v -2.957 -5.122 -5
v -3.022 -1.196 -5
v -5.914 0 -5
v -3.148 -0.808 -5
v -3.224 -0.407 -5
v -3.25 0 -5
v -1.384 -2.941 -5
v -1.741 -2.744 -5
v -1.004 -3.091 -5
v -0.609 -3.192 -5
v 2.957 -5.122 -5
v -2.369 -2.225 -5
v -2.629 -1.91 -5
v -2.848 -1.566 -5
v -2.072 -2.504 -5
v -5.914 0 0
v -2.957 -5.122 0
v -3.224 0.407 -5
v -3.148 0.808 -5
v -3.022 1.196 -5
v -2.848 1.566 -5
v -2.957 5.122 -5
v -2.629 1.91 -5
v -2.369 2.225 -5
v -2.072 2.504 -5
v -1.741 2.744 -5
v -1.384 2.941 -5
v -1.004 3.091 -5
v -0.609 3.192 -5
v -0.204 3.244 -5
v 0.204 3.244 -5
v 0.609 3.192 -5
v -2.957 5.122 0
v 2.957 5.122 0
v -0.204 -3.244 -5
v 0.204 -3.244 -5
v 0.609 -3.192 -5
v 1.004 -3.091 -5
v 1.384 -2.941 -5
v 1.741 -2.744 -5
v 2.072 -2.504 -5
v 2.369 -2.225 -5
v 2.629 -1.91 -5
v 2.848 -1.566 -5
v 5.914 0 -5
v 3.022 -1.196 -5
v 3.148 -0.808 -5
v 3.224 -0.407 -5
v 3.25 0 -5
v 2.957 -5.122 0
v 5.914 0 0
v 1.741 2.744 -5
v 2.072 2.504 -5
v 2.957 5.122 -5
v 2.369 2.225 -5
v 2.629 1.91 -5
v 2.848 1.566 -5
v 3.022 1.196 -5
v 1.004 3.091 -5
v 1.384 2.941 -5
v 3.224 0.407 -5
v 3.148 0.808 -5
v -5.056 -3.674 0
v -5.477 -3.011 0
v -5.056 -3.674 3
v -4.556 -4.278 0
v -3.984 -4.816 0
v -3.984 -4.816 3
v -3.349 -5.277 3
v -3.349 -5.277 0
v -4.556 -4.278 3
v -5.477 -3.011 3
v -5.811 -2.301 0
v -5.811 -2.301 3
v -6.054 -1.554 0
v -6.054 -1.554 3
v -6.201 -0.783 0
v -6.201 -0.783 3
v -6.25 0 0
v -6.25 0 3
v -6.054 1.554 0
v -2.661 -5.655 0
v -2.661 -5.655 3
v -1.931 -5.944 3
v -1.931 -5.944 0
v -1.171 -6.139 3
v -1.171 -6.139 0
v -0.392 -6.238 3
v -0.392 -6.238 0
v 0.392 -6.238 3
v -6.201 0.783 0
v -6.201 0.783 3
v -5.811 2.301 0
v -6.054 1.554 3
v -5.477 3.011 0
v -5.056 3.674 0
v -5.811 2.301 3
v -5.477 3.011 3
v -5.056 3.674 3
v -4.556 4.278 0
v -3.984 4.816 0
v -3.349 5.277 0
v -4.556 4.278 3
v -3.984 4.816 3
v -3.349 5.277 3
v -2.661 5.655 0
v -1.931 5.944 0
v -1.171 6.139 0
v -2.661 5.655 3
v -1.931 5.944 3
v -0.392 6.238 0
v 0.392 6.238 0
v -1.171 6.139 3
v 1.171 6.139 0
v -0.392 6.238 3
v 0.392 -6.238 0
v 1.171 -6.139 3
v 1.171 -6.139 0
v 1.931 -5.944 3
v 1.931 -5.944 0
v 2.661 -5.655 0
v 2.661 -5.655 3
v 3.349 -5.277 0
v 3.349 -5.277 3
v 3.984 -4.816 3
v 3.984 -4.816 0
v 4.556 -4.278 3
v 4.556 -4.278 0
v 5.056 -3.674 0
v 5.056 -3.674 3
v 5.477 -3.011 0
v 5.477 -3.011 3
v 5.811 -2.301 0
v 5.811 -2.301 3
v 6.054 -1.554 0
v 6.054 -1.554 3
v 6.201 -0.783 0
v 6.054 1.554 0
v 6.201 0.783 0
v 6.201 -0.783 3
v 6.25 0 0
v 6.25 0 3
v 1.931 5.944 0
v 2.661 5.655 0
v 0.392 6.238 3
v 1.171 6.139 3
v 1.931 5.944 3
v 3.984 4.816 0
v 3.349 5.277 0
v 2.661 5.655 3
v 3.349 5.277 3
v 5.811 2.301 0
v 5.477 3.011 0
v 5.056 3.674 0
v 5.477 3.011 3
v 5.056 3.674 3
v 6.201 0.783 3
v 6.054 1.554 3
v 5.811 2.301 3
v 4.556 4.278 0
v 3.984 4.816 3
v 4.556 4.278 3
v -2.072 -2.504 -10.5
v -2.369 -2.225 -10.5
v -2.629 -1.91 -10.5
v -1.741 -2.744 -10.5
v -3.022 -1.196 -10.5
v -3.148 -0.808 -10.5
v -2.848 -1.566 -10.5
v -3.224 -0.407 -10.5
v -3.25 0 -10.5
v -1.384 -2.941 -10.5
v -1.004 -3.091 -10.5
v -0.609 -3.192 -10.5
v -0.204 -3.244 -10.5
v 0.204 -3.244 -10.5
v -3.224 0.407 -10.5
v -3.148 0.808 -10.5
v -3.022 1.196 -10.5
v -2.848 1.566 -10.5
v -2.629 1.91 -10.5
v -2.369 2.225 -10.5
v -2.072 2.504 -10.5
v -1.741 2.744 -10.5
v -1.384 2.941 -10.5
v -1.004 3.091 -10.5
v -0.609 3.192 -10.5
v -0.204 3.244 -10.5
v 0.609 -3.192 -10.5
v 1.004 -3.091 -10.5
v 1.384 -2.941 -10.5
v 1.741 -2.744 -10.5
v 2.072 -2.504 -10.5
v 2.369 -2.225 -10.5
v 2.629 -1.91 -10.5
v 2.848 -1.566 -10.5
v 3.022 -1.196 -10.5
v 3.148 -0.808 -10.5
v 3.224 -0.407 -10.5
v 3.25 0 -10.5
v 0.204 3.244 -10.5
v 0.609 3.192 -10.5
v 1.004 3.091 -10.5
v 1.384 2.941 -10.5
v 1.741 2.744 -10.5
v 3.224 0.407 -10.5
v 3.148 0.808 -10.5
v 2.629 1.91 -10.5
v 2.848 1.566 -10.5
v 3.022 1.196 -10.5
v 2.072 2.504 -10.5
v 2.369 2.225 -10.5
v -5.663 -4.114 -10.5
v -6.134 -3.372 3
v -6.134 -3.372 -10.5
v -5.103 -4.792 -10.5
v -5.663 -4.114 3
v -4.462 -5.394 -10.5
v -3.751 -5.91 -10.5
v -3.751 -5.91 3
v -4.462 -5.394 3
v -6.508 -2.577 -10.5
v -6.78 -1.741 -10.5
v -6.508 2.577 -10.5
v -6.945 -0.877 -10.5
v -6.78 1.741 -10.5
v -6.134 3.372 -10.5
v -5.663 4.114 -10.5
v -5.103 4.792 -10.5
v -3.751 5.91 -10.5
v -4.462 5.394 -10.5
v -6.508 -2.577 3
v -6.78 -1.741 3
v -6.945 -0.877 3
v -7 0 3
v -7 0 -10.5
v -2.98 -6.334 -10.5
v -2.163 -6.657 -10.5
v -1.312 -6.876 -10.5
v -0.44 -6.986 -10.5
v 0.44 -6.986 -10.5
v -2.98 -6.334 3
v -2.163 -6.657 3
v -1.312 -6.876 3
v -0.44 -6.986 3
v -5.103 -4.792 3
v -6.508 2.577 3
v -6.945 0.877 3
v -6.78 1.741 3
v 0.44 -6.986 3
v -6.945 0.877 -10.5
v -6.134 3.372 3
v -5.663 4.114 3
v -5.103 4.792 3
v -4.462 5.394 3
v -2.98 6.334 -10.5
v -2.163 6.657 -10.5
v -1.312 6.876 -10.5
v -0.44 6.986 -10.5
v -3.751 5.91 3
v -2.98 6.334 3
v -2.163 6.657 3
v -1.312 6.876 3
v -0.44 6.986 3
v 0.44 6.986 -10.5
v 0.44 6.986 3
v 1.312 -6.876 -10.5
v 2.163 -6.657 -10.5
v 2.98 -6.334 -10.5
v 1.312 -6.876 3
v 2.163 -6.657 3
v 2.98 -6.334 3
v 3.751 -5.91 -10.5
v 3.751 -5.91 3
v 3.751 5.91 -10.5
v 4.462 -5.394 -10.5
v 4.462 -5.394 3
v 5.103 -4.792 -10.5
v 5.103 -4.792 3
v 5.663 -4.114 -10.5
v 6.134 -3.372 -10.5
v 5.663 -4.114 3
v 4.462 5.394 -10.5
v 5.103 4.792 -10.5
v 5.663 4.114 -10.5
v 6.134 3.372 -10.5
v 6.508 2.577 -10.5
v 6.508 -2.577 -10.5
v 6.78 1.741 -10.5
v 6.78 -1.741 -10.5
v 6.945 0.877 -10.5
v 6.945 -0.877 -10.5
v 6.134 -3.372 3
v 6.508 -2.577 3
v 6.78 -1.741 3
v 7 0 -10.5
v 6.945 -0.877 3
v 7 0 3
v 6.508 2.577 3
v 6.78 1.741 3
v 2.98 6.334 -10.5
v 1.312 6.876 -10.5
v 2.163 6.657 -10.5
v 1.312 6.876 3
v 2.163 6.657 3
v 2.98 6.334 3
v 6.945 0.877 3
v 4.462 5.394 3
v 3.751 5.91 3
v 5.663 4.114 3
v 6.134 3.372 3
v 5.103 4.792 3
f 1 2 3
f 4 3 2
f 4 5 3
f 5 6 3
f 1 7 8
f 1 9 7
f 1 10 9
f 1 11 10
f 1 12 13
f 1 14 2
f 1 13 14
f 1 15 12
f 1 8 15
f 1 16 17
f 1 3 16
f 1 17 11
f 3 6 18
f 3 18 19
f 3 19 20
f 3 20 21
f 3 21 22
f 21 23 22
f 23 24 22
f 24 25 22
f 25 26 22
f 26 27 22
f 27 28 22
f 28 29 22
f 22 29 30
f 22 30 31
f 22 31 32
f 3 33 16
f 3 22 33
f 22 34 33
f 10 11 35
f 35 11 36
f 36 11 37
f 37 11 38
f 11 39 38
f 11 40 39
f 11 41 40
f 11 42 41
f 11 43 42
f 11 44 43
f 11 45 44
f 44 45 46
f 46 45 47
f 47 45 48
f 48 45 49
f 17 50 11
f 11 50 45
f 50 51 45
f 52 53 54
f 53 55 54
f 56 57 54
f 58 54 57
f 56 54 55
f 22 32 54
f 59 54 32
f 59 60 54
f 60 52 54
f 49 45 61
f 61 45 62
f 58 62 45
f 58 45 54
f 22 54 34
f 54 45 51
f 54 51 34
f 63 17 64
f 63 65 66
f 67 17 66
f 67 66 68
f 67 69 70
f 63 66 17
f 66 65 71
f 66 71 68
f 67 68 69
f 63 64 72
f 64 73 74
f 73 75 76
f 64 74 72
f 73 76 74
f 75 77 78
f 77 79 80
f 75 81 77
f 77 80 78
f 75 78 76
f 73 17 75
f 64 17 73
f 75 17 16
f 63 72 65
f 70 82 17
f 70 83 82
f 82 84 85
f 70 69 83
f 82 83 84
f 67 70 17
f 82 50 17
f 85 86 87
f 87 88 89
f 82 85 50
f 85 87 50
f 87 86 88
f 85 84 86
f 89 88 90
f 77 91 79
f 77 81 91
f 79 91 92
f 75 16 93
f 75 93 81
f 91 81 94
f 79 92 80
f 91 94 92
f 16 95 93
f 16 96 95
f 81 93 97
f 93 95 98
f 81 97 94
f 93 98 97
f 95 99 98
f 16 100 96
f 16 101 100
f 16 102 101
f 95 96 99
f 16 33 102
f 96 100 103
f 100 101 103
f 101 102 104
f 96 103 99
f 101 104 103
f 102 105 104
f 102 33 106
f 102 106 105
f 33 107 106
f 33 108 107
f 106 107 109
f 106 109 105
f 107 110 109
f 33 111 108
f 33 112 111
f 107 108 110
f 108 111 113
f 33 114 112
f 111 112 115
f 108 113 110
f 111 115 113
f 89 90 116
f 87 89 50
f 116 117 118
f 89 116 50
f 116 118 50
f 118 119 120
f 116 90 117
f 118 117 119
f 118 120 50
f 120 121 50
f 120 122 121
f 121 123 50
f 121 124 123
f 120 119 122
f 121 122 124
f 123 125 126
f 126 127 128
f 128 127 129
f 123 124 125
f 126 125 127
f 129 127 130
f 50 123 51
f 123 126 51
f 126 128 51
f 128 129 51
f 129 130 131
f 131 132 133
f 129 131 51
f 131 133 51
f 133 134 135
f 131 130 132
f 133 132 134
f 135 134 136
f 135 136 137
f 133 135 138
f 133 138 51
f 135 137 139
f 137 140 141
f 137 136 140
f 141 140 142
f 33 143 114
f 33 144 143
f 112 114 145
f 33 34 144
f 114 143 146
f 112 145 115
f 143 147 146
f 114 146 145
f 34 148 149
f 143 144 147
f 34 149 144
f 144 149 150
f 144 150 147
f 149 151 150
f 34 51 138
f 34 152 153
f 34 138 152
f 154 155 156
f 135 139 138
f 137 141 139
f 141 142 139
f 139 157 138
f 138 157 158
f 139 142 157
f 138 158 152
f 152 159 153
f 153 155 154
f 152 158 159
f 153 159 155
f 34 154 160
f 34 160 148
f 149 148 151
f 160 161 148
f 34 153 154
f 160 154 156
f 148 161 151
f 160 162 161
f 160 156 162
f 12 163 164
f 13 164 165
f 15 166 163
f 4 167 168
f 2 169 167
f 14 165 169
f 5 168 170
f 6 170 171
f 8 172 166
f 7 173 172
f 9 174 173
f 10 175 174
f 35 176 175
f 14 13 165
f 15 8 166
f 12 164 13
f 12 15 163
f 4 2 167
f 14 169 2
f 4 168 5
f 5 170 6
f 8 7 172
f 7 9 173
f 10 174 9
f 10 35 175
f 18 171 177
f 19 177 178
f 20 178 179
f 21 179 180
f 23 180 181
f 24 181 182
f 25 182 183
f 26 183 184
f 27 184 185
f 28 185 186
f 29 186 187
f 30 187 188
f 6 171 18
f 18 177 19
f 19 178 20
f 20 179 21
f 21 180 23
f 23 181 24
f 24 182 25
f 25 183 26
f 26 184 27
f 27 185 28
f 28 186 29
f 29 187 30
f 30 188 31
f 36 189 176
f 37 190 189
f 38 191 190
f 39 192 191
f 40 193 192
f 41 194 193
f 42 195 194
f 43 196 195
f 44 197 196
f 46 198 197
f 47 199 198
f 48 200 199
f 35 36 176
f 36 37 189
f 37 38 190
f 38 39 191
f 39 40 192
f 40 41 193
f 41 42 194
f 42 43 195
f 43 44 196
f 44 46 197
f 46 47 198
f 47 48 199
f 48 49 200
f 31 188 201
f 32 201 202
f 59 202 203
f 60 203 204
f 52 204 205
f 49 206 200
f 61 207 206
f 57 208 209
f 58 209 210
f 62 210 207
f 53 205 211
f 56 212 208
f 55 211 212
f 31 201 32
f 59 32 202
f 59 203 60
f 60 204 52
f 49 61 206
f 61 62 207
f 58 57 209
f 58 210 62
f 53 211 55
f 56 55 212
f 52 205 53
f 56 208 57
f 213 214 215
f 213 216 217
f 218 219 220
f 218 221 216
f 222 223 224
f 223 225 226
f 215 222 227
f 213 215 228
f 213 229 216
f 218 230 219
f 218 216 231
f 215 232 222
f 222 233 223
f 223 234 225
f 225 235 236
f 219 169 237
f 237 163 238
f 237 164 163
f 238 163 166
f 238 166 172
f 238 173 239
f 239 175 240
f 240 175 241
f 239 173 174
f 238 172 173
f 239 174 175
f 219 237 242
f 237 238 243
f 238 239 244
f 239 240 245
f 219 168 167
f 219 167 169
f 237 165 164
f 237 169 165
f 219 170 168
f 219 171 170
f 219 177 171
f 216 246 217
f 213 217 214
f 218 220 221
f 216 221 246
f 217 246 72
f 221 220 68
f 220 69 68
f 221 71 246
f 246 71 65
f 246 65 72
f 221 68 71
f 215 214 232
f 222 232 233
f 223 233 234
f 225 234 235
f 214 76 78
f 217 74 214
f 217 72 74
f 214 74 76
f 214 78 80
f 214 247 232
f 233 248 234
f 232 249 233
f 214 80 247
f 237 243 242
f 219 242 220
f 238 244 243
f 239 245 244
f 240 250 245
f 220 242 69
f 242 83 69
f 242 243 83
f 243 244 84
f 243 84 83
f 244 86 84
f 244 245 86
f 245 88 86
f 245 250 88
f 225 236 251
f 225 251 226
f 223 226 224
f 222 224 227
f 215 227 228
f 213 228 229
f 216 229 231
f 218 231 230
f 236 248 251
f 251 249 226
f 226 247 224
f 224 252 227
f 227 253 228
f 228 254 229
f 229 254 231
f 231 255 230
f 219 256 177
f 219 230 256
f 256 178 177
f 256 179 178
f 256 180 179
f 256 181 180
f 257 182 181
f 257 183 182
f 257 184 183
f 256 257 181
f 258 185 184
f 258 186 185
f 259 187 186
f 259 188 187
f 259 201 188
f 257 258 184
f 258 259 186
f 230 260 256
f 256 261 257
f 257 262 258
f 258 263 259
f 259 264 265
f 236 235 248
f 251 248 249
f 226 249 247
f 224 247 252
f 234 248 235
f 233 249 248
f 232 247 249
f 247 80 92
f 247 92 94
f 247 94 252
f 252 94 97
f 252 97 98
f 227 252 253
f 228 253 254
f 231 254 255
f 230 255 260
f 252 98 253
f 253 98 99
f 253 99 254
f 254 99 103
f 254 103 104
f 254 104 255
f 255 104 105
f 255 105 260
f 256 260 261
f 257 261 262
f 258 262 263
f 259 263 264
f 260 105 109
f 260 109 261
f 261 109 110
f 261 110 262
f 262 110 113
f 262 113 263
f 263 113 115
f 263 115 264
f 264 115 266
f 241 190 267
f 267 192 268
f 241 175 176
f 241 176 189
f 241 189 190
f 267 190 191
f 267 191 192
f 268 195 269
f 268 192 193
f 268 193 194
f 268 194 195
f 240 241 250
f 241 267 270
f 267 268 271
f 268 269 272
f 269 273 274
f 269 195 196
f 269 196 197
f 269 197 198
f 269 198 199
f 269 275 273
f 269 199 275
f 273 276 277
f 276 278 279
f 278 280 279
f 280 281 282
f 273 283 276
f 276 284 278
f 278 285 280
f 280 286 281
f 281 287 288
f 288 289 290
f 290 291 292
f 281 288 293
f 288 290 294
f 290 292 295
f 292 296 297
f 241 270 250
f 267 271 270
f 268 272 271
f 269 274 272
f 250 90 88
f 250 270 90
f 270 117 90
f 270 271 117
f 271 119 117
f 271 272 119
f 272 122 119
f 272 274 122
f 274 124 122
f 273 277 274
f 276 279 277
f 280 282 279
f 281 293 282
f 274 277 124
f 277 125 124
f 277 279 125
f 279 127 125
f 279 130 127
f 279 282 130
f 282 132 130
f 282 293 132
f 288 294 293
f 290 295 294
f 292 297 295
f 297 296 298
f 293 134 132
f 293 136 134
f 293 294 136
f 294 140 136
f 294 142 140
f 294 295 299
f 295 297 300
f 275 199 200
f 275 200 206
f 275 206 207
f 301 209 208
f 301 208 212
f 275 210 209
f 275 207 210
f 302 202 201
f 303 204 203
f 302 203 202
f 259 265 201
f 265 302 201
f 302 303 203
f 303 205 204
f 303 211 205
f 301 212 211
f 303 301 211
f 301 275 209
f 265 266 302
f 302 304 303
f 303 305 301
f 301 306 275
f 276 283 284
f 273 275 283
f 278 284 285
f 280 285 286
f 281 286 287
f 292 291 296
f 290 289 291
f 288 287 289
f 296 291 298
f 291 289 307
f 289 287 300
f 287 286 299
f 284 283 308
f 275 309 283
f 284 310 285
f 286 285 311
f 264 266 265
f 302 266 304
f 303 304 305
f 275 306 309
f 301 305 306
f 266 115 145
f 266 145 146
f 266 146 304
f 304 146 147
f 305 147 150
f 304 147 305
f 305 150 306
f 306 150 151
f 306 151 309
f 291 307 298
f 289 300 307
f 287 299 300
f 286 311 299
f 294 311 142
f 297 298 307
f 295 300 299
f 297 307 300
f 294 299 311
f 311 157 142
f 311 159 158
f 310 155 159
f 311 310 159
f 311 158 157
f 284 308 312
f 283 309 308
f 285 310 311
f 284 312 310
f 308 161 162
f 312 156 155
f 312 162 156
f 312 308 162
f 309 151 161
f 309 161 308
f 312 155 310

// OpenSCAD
$fn = 50;

difference() {
	union() {
		translate(v = [0, 0, -10.5]) {
			cylinder(h = 13.5, r = 7.0);
		}
	}
	union() {
		translate(v = [0, 0, 0]) {
			rotate(a = [0, 0, 0]) {
				difference() {
					union() {
						translate(v = [0, 0, -5]) {
							linear_extrude(height = 5) {
								polygon(points = [[5.914249999999999, 0.0], [2.957125, 5.1218907443321156], [-2.9571249999999982, 5.1218907443321156], [-5.914249999999999, 7.242867331857232e-16], [-2.9571250000000022, -5.121890744332115], [2.9571249999999956, -5.121890744332118]]);
							}
						}
					}
					union();
				}
			}
		}
		#cylinder(h = 3, r = 6.25);
		#translate(v = [0, 0, -100.0]) {
			cylinder(h = 200, r = 3.25);
		}
	}
}
